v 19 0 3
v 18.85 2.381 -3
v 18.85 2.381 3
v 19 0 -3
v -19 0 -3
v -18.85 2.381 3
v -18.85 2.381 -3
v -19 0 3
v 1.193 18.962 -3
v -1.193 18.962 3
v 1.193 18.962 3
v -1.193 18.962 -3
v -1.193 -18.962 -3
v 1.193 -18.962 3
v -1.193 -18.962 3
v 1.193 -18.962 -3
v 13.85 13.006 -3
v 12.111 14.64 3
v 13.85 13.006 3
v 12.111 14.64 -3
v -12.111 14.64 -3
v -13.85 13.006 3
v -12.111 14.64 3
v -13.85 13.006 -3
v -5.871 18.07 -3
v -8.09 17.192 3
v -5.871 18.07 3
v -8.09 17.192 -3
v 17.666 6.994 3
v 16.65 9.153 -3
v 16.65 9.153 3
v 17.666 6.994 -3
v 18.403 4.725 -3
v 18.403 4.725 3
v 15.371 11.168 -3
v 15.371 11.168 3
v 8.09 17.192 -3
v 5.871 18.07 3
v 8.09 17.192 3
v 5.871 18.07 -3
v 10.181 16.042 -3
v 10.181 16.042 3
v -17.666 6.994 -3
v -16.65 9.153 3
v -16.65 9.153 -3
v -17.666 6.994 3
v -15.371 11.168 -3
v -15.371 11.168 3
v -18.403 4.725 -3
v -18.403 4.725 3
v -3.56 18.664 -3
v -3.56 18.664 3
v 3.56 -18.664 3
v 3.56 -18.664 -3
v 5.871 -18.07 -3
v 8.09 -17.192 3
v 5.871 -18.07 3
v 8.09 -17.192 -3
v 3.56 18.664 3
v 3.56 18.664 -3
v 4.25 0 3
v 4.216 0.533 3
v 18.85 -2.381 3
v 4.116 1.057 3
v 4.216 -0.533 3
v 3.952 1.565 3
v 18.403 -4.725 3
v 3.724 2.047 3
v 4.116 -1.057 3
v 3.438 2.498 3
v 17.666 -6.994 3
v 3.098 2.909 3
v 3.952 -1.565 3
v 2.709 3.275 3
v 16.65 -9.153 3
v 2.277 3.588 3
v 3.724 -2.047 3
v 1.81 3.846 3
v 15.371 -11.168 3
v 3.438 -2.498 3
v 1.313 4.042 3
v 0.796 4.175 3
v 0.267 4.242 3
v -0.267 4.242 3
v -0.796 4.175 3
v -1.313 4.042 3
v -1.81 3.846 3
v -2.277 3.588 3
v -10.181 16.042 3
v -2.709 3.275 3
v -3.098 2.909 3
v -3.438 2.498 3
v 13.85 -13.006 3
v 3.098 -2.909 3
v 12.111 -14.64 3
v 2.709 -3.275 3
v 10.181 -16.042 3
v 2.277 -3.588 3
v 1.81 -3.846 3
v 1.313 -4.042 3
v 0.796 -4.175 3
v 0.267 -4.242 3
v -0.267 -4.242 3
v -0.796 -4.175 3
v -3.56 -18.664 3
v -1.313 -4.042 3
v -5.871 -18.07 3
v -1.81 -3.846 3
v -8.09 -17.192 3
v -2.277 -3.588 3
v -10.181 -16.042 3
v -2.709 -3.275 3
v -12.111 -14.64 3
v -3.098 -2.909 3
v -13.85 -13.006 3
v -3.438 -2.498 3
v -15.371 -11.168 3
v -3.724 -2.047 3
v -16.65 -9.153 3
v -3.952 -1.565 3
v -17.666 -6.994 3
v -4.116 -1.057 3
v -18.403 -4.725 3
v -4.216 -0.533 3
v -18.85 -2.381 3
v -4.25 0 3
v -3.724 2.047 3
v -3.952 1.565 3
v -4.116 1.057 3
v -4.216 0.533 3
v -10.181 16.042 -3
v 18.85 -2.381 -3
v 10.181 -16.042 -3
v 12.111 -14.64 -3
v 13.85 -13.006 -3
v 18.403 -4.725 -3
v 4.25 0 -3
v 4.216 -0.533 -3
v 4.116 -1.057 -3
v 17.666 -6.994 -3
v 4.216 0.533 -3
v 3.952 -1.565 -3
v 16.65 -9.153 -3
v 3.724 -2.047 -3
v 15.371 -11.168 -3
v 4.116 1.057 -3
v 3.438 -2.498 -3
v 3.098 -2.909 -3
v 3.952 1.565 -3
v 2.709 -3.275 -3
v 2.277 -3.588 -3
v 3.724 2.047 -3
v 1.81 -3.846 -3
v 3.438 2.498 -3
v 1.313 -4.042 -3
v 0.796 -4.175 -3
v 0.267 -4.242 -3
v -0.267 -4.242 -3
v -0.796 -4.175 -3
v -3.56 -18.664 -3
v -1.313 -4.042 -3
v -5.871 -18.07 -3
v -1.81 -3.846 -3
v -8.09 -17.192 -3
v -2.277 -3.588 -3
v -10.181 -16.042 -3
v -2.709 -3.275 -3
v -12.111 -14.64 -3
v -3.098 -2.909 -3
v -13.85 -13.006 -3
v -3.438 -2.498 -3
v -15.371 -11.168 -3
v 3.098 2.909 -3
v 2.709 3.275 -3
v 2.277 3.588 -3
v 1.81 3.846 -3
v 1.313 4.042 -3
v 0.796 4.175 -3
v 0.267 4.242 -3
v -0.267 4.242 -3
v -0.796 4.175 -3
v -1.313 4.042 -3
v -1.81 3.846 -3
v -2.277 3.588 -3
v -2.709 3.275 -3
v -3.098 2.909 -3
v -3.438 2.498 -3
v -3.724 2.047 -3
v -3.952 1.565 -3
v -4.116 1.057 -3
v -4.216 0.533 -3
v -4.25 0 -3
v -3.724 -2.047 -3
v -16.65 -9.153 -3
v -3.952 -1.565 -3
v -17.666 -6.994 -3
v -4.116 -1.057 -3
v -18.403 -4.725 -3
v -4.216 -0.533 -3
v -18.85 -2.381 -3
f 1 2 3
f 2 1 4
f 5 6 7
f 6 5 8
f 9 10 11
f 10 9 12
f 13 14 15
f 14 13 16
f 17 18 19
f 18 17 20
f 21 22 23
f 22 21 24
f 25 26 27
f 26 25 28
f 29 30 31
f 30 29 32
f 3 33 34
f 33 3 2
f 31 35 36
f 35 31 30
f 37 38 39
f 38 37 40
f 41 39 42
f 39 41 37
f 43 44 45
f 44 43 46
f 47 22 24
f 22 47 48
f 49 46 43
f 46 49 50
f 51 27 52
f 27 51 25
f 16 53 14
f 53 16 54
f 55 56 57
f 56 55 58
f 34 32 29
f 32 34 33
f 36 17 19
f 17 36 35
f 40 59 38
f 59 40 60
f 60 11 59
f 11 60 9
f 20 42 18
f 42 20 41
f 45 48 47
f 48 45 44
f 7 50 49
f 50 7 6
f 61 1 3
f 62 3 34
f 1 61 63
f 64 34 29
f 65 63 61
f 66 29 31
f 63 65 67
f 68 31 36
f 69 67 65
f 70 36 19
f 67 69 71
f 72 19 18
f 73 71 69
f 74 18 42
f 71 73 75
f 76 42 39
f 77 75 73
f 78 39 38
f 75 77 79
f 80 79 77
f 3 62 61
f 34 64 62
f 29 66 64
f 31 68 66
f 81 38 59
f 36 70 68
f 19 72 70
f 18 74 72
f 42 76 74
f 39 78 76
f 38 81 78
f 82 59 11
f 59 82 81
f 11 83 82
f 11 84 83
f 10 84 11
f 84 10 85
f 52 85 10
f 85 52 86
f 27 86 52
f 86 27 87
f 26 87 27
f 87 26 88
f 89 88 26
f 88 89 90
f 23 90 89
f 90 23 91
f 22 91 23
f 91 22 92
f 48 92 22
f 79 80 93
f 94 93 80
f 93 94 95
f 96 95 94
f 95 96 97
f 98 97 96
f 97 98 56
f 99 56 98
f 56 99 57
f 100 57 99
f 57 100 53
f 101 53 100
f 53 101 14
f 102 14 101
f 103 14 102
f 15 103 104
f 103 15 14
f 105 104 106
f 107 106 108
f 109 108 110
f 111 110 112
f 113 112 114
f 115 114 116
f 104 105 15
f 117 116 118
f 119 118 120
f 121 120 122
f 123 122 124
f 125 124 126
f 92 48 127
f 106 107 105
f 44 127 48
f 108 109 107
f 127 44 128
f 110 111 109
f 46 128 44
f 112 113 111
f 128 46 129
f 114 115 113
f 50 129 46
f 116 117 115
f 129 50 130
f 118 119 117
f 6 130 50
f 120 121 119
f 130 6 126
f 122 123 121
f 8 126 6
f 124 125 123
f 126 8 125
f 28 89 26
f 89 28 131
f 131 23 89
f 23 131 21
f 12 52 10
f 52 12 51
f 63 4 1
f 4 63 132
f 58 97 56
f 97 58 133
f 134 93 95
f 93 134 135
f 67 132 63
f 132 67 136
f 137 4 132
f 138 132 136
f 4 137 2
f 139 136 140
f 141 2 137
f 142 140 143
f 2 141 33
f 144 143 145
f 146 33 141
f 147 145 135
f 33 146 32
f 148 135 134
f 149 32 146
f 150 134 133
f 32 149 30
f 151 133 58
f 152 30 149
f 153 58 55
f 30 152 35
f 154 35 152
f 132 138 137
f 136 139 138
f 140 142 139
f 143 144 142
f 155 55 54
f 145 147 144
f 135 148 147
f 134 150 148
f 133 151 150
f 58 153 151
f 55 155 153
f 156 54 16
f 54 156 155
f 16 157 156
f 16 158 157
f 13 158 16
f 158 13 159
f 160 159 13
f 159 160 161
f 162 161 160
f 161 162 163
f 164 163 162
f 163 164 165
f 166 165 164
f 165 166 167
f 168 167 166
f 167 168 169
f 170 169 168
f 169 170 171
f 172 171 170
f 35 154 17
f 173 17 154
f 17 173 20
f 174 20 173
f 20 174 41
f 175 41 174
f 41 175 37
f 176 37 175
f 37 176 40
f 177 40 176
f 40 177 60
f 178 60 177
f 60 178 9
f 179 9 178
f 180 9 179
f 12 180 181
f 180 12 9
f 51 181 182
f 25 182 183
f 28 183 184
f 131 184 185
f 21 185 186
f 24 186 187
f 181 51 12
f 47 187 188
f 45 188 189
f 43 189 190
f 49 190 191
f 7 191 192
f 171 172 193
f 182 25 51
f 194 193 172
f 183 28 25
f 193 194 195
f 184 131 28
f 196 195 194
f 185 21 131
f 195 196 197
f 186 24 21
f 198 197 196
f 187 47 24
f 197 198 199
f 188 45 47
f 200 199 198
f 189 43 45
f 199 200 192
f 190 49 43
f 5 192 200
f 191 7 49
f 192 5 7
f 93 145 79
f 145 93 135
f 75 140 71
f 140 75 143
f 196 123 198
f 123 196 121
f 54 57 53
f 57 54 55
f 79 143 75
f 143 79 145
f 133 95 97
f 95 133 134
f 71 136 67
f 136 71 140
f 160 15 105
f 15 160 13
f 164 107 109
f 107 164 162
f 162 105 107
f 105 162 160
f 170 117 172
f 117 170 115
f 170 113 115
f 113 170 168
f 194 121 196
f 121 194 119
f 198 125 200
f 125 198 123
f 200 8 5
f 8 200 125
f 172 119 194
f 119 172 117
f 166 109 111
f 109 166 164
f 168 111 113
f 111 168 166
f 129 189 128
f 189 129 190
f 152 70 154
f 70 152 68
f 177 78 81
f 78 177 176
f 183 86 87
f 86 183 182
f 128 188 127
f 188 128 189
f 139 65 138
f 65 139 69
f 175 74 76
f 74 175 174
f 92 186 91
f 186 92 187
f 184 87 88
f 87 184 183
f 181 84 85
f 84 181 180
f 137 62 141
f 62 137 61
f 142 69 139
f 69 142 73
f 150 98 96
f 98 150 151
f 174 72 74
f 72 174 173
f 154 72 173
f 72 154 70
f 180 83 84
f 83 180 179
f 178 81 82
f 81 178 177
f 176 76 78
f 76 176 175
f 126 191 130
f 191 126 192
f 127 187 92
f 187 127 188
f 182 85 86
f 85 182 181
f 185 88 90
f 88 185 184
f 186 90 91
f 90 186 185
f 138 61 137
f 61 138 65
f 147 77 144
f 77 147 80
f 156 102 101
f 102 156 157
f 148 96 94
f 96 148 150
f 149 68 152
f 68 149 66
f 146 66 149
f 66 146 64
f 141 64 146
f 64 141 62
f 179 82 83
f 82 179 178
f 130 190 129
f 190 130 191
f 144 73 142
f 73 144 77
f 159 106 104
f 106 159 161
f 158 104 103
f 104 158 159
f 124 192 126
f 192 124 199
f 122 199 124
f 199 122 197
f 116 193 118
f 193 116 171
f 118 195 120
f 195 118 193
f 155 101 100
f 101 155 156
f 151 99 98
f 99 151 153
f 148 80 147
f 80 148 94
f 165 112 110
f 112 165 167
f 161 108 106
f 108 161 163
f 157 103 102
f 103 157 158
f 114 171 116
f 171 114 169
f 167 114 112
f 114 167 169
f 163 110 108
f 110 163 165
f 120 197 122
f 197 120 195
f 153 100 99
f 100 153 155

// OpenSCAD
$fn = 50;


difference() {
	union() {
		translate(v = [0, 0, -3.0000000000]) {
			cylinder(h = 6, r = 19.0000000000);
		}
	}
	union() {
		translate(v = [0, 0, -100.0000000000]) {
			cylinder(h = 200, r = 4.2500000000);
		}
	}
}
